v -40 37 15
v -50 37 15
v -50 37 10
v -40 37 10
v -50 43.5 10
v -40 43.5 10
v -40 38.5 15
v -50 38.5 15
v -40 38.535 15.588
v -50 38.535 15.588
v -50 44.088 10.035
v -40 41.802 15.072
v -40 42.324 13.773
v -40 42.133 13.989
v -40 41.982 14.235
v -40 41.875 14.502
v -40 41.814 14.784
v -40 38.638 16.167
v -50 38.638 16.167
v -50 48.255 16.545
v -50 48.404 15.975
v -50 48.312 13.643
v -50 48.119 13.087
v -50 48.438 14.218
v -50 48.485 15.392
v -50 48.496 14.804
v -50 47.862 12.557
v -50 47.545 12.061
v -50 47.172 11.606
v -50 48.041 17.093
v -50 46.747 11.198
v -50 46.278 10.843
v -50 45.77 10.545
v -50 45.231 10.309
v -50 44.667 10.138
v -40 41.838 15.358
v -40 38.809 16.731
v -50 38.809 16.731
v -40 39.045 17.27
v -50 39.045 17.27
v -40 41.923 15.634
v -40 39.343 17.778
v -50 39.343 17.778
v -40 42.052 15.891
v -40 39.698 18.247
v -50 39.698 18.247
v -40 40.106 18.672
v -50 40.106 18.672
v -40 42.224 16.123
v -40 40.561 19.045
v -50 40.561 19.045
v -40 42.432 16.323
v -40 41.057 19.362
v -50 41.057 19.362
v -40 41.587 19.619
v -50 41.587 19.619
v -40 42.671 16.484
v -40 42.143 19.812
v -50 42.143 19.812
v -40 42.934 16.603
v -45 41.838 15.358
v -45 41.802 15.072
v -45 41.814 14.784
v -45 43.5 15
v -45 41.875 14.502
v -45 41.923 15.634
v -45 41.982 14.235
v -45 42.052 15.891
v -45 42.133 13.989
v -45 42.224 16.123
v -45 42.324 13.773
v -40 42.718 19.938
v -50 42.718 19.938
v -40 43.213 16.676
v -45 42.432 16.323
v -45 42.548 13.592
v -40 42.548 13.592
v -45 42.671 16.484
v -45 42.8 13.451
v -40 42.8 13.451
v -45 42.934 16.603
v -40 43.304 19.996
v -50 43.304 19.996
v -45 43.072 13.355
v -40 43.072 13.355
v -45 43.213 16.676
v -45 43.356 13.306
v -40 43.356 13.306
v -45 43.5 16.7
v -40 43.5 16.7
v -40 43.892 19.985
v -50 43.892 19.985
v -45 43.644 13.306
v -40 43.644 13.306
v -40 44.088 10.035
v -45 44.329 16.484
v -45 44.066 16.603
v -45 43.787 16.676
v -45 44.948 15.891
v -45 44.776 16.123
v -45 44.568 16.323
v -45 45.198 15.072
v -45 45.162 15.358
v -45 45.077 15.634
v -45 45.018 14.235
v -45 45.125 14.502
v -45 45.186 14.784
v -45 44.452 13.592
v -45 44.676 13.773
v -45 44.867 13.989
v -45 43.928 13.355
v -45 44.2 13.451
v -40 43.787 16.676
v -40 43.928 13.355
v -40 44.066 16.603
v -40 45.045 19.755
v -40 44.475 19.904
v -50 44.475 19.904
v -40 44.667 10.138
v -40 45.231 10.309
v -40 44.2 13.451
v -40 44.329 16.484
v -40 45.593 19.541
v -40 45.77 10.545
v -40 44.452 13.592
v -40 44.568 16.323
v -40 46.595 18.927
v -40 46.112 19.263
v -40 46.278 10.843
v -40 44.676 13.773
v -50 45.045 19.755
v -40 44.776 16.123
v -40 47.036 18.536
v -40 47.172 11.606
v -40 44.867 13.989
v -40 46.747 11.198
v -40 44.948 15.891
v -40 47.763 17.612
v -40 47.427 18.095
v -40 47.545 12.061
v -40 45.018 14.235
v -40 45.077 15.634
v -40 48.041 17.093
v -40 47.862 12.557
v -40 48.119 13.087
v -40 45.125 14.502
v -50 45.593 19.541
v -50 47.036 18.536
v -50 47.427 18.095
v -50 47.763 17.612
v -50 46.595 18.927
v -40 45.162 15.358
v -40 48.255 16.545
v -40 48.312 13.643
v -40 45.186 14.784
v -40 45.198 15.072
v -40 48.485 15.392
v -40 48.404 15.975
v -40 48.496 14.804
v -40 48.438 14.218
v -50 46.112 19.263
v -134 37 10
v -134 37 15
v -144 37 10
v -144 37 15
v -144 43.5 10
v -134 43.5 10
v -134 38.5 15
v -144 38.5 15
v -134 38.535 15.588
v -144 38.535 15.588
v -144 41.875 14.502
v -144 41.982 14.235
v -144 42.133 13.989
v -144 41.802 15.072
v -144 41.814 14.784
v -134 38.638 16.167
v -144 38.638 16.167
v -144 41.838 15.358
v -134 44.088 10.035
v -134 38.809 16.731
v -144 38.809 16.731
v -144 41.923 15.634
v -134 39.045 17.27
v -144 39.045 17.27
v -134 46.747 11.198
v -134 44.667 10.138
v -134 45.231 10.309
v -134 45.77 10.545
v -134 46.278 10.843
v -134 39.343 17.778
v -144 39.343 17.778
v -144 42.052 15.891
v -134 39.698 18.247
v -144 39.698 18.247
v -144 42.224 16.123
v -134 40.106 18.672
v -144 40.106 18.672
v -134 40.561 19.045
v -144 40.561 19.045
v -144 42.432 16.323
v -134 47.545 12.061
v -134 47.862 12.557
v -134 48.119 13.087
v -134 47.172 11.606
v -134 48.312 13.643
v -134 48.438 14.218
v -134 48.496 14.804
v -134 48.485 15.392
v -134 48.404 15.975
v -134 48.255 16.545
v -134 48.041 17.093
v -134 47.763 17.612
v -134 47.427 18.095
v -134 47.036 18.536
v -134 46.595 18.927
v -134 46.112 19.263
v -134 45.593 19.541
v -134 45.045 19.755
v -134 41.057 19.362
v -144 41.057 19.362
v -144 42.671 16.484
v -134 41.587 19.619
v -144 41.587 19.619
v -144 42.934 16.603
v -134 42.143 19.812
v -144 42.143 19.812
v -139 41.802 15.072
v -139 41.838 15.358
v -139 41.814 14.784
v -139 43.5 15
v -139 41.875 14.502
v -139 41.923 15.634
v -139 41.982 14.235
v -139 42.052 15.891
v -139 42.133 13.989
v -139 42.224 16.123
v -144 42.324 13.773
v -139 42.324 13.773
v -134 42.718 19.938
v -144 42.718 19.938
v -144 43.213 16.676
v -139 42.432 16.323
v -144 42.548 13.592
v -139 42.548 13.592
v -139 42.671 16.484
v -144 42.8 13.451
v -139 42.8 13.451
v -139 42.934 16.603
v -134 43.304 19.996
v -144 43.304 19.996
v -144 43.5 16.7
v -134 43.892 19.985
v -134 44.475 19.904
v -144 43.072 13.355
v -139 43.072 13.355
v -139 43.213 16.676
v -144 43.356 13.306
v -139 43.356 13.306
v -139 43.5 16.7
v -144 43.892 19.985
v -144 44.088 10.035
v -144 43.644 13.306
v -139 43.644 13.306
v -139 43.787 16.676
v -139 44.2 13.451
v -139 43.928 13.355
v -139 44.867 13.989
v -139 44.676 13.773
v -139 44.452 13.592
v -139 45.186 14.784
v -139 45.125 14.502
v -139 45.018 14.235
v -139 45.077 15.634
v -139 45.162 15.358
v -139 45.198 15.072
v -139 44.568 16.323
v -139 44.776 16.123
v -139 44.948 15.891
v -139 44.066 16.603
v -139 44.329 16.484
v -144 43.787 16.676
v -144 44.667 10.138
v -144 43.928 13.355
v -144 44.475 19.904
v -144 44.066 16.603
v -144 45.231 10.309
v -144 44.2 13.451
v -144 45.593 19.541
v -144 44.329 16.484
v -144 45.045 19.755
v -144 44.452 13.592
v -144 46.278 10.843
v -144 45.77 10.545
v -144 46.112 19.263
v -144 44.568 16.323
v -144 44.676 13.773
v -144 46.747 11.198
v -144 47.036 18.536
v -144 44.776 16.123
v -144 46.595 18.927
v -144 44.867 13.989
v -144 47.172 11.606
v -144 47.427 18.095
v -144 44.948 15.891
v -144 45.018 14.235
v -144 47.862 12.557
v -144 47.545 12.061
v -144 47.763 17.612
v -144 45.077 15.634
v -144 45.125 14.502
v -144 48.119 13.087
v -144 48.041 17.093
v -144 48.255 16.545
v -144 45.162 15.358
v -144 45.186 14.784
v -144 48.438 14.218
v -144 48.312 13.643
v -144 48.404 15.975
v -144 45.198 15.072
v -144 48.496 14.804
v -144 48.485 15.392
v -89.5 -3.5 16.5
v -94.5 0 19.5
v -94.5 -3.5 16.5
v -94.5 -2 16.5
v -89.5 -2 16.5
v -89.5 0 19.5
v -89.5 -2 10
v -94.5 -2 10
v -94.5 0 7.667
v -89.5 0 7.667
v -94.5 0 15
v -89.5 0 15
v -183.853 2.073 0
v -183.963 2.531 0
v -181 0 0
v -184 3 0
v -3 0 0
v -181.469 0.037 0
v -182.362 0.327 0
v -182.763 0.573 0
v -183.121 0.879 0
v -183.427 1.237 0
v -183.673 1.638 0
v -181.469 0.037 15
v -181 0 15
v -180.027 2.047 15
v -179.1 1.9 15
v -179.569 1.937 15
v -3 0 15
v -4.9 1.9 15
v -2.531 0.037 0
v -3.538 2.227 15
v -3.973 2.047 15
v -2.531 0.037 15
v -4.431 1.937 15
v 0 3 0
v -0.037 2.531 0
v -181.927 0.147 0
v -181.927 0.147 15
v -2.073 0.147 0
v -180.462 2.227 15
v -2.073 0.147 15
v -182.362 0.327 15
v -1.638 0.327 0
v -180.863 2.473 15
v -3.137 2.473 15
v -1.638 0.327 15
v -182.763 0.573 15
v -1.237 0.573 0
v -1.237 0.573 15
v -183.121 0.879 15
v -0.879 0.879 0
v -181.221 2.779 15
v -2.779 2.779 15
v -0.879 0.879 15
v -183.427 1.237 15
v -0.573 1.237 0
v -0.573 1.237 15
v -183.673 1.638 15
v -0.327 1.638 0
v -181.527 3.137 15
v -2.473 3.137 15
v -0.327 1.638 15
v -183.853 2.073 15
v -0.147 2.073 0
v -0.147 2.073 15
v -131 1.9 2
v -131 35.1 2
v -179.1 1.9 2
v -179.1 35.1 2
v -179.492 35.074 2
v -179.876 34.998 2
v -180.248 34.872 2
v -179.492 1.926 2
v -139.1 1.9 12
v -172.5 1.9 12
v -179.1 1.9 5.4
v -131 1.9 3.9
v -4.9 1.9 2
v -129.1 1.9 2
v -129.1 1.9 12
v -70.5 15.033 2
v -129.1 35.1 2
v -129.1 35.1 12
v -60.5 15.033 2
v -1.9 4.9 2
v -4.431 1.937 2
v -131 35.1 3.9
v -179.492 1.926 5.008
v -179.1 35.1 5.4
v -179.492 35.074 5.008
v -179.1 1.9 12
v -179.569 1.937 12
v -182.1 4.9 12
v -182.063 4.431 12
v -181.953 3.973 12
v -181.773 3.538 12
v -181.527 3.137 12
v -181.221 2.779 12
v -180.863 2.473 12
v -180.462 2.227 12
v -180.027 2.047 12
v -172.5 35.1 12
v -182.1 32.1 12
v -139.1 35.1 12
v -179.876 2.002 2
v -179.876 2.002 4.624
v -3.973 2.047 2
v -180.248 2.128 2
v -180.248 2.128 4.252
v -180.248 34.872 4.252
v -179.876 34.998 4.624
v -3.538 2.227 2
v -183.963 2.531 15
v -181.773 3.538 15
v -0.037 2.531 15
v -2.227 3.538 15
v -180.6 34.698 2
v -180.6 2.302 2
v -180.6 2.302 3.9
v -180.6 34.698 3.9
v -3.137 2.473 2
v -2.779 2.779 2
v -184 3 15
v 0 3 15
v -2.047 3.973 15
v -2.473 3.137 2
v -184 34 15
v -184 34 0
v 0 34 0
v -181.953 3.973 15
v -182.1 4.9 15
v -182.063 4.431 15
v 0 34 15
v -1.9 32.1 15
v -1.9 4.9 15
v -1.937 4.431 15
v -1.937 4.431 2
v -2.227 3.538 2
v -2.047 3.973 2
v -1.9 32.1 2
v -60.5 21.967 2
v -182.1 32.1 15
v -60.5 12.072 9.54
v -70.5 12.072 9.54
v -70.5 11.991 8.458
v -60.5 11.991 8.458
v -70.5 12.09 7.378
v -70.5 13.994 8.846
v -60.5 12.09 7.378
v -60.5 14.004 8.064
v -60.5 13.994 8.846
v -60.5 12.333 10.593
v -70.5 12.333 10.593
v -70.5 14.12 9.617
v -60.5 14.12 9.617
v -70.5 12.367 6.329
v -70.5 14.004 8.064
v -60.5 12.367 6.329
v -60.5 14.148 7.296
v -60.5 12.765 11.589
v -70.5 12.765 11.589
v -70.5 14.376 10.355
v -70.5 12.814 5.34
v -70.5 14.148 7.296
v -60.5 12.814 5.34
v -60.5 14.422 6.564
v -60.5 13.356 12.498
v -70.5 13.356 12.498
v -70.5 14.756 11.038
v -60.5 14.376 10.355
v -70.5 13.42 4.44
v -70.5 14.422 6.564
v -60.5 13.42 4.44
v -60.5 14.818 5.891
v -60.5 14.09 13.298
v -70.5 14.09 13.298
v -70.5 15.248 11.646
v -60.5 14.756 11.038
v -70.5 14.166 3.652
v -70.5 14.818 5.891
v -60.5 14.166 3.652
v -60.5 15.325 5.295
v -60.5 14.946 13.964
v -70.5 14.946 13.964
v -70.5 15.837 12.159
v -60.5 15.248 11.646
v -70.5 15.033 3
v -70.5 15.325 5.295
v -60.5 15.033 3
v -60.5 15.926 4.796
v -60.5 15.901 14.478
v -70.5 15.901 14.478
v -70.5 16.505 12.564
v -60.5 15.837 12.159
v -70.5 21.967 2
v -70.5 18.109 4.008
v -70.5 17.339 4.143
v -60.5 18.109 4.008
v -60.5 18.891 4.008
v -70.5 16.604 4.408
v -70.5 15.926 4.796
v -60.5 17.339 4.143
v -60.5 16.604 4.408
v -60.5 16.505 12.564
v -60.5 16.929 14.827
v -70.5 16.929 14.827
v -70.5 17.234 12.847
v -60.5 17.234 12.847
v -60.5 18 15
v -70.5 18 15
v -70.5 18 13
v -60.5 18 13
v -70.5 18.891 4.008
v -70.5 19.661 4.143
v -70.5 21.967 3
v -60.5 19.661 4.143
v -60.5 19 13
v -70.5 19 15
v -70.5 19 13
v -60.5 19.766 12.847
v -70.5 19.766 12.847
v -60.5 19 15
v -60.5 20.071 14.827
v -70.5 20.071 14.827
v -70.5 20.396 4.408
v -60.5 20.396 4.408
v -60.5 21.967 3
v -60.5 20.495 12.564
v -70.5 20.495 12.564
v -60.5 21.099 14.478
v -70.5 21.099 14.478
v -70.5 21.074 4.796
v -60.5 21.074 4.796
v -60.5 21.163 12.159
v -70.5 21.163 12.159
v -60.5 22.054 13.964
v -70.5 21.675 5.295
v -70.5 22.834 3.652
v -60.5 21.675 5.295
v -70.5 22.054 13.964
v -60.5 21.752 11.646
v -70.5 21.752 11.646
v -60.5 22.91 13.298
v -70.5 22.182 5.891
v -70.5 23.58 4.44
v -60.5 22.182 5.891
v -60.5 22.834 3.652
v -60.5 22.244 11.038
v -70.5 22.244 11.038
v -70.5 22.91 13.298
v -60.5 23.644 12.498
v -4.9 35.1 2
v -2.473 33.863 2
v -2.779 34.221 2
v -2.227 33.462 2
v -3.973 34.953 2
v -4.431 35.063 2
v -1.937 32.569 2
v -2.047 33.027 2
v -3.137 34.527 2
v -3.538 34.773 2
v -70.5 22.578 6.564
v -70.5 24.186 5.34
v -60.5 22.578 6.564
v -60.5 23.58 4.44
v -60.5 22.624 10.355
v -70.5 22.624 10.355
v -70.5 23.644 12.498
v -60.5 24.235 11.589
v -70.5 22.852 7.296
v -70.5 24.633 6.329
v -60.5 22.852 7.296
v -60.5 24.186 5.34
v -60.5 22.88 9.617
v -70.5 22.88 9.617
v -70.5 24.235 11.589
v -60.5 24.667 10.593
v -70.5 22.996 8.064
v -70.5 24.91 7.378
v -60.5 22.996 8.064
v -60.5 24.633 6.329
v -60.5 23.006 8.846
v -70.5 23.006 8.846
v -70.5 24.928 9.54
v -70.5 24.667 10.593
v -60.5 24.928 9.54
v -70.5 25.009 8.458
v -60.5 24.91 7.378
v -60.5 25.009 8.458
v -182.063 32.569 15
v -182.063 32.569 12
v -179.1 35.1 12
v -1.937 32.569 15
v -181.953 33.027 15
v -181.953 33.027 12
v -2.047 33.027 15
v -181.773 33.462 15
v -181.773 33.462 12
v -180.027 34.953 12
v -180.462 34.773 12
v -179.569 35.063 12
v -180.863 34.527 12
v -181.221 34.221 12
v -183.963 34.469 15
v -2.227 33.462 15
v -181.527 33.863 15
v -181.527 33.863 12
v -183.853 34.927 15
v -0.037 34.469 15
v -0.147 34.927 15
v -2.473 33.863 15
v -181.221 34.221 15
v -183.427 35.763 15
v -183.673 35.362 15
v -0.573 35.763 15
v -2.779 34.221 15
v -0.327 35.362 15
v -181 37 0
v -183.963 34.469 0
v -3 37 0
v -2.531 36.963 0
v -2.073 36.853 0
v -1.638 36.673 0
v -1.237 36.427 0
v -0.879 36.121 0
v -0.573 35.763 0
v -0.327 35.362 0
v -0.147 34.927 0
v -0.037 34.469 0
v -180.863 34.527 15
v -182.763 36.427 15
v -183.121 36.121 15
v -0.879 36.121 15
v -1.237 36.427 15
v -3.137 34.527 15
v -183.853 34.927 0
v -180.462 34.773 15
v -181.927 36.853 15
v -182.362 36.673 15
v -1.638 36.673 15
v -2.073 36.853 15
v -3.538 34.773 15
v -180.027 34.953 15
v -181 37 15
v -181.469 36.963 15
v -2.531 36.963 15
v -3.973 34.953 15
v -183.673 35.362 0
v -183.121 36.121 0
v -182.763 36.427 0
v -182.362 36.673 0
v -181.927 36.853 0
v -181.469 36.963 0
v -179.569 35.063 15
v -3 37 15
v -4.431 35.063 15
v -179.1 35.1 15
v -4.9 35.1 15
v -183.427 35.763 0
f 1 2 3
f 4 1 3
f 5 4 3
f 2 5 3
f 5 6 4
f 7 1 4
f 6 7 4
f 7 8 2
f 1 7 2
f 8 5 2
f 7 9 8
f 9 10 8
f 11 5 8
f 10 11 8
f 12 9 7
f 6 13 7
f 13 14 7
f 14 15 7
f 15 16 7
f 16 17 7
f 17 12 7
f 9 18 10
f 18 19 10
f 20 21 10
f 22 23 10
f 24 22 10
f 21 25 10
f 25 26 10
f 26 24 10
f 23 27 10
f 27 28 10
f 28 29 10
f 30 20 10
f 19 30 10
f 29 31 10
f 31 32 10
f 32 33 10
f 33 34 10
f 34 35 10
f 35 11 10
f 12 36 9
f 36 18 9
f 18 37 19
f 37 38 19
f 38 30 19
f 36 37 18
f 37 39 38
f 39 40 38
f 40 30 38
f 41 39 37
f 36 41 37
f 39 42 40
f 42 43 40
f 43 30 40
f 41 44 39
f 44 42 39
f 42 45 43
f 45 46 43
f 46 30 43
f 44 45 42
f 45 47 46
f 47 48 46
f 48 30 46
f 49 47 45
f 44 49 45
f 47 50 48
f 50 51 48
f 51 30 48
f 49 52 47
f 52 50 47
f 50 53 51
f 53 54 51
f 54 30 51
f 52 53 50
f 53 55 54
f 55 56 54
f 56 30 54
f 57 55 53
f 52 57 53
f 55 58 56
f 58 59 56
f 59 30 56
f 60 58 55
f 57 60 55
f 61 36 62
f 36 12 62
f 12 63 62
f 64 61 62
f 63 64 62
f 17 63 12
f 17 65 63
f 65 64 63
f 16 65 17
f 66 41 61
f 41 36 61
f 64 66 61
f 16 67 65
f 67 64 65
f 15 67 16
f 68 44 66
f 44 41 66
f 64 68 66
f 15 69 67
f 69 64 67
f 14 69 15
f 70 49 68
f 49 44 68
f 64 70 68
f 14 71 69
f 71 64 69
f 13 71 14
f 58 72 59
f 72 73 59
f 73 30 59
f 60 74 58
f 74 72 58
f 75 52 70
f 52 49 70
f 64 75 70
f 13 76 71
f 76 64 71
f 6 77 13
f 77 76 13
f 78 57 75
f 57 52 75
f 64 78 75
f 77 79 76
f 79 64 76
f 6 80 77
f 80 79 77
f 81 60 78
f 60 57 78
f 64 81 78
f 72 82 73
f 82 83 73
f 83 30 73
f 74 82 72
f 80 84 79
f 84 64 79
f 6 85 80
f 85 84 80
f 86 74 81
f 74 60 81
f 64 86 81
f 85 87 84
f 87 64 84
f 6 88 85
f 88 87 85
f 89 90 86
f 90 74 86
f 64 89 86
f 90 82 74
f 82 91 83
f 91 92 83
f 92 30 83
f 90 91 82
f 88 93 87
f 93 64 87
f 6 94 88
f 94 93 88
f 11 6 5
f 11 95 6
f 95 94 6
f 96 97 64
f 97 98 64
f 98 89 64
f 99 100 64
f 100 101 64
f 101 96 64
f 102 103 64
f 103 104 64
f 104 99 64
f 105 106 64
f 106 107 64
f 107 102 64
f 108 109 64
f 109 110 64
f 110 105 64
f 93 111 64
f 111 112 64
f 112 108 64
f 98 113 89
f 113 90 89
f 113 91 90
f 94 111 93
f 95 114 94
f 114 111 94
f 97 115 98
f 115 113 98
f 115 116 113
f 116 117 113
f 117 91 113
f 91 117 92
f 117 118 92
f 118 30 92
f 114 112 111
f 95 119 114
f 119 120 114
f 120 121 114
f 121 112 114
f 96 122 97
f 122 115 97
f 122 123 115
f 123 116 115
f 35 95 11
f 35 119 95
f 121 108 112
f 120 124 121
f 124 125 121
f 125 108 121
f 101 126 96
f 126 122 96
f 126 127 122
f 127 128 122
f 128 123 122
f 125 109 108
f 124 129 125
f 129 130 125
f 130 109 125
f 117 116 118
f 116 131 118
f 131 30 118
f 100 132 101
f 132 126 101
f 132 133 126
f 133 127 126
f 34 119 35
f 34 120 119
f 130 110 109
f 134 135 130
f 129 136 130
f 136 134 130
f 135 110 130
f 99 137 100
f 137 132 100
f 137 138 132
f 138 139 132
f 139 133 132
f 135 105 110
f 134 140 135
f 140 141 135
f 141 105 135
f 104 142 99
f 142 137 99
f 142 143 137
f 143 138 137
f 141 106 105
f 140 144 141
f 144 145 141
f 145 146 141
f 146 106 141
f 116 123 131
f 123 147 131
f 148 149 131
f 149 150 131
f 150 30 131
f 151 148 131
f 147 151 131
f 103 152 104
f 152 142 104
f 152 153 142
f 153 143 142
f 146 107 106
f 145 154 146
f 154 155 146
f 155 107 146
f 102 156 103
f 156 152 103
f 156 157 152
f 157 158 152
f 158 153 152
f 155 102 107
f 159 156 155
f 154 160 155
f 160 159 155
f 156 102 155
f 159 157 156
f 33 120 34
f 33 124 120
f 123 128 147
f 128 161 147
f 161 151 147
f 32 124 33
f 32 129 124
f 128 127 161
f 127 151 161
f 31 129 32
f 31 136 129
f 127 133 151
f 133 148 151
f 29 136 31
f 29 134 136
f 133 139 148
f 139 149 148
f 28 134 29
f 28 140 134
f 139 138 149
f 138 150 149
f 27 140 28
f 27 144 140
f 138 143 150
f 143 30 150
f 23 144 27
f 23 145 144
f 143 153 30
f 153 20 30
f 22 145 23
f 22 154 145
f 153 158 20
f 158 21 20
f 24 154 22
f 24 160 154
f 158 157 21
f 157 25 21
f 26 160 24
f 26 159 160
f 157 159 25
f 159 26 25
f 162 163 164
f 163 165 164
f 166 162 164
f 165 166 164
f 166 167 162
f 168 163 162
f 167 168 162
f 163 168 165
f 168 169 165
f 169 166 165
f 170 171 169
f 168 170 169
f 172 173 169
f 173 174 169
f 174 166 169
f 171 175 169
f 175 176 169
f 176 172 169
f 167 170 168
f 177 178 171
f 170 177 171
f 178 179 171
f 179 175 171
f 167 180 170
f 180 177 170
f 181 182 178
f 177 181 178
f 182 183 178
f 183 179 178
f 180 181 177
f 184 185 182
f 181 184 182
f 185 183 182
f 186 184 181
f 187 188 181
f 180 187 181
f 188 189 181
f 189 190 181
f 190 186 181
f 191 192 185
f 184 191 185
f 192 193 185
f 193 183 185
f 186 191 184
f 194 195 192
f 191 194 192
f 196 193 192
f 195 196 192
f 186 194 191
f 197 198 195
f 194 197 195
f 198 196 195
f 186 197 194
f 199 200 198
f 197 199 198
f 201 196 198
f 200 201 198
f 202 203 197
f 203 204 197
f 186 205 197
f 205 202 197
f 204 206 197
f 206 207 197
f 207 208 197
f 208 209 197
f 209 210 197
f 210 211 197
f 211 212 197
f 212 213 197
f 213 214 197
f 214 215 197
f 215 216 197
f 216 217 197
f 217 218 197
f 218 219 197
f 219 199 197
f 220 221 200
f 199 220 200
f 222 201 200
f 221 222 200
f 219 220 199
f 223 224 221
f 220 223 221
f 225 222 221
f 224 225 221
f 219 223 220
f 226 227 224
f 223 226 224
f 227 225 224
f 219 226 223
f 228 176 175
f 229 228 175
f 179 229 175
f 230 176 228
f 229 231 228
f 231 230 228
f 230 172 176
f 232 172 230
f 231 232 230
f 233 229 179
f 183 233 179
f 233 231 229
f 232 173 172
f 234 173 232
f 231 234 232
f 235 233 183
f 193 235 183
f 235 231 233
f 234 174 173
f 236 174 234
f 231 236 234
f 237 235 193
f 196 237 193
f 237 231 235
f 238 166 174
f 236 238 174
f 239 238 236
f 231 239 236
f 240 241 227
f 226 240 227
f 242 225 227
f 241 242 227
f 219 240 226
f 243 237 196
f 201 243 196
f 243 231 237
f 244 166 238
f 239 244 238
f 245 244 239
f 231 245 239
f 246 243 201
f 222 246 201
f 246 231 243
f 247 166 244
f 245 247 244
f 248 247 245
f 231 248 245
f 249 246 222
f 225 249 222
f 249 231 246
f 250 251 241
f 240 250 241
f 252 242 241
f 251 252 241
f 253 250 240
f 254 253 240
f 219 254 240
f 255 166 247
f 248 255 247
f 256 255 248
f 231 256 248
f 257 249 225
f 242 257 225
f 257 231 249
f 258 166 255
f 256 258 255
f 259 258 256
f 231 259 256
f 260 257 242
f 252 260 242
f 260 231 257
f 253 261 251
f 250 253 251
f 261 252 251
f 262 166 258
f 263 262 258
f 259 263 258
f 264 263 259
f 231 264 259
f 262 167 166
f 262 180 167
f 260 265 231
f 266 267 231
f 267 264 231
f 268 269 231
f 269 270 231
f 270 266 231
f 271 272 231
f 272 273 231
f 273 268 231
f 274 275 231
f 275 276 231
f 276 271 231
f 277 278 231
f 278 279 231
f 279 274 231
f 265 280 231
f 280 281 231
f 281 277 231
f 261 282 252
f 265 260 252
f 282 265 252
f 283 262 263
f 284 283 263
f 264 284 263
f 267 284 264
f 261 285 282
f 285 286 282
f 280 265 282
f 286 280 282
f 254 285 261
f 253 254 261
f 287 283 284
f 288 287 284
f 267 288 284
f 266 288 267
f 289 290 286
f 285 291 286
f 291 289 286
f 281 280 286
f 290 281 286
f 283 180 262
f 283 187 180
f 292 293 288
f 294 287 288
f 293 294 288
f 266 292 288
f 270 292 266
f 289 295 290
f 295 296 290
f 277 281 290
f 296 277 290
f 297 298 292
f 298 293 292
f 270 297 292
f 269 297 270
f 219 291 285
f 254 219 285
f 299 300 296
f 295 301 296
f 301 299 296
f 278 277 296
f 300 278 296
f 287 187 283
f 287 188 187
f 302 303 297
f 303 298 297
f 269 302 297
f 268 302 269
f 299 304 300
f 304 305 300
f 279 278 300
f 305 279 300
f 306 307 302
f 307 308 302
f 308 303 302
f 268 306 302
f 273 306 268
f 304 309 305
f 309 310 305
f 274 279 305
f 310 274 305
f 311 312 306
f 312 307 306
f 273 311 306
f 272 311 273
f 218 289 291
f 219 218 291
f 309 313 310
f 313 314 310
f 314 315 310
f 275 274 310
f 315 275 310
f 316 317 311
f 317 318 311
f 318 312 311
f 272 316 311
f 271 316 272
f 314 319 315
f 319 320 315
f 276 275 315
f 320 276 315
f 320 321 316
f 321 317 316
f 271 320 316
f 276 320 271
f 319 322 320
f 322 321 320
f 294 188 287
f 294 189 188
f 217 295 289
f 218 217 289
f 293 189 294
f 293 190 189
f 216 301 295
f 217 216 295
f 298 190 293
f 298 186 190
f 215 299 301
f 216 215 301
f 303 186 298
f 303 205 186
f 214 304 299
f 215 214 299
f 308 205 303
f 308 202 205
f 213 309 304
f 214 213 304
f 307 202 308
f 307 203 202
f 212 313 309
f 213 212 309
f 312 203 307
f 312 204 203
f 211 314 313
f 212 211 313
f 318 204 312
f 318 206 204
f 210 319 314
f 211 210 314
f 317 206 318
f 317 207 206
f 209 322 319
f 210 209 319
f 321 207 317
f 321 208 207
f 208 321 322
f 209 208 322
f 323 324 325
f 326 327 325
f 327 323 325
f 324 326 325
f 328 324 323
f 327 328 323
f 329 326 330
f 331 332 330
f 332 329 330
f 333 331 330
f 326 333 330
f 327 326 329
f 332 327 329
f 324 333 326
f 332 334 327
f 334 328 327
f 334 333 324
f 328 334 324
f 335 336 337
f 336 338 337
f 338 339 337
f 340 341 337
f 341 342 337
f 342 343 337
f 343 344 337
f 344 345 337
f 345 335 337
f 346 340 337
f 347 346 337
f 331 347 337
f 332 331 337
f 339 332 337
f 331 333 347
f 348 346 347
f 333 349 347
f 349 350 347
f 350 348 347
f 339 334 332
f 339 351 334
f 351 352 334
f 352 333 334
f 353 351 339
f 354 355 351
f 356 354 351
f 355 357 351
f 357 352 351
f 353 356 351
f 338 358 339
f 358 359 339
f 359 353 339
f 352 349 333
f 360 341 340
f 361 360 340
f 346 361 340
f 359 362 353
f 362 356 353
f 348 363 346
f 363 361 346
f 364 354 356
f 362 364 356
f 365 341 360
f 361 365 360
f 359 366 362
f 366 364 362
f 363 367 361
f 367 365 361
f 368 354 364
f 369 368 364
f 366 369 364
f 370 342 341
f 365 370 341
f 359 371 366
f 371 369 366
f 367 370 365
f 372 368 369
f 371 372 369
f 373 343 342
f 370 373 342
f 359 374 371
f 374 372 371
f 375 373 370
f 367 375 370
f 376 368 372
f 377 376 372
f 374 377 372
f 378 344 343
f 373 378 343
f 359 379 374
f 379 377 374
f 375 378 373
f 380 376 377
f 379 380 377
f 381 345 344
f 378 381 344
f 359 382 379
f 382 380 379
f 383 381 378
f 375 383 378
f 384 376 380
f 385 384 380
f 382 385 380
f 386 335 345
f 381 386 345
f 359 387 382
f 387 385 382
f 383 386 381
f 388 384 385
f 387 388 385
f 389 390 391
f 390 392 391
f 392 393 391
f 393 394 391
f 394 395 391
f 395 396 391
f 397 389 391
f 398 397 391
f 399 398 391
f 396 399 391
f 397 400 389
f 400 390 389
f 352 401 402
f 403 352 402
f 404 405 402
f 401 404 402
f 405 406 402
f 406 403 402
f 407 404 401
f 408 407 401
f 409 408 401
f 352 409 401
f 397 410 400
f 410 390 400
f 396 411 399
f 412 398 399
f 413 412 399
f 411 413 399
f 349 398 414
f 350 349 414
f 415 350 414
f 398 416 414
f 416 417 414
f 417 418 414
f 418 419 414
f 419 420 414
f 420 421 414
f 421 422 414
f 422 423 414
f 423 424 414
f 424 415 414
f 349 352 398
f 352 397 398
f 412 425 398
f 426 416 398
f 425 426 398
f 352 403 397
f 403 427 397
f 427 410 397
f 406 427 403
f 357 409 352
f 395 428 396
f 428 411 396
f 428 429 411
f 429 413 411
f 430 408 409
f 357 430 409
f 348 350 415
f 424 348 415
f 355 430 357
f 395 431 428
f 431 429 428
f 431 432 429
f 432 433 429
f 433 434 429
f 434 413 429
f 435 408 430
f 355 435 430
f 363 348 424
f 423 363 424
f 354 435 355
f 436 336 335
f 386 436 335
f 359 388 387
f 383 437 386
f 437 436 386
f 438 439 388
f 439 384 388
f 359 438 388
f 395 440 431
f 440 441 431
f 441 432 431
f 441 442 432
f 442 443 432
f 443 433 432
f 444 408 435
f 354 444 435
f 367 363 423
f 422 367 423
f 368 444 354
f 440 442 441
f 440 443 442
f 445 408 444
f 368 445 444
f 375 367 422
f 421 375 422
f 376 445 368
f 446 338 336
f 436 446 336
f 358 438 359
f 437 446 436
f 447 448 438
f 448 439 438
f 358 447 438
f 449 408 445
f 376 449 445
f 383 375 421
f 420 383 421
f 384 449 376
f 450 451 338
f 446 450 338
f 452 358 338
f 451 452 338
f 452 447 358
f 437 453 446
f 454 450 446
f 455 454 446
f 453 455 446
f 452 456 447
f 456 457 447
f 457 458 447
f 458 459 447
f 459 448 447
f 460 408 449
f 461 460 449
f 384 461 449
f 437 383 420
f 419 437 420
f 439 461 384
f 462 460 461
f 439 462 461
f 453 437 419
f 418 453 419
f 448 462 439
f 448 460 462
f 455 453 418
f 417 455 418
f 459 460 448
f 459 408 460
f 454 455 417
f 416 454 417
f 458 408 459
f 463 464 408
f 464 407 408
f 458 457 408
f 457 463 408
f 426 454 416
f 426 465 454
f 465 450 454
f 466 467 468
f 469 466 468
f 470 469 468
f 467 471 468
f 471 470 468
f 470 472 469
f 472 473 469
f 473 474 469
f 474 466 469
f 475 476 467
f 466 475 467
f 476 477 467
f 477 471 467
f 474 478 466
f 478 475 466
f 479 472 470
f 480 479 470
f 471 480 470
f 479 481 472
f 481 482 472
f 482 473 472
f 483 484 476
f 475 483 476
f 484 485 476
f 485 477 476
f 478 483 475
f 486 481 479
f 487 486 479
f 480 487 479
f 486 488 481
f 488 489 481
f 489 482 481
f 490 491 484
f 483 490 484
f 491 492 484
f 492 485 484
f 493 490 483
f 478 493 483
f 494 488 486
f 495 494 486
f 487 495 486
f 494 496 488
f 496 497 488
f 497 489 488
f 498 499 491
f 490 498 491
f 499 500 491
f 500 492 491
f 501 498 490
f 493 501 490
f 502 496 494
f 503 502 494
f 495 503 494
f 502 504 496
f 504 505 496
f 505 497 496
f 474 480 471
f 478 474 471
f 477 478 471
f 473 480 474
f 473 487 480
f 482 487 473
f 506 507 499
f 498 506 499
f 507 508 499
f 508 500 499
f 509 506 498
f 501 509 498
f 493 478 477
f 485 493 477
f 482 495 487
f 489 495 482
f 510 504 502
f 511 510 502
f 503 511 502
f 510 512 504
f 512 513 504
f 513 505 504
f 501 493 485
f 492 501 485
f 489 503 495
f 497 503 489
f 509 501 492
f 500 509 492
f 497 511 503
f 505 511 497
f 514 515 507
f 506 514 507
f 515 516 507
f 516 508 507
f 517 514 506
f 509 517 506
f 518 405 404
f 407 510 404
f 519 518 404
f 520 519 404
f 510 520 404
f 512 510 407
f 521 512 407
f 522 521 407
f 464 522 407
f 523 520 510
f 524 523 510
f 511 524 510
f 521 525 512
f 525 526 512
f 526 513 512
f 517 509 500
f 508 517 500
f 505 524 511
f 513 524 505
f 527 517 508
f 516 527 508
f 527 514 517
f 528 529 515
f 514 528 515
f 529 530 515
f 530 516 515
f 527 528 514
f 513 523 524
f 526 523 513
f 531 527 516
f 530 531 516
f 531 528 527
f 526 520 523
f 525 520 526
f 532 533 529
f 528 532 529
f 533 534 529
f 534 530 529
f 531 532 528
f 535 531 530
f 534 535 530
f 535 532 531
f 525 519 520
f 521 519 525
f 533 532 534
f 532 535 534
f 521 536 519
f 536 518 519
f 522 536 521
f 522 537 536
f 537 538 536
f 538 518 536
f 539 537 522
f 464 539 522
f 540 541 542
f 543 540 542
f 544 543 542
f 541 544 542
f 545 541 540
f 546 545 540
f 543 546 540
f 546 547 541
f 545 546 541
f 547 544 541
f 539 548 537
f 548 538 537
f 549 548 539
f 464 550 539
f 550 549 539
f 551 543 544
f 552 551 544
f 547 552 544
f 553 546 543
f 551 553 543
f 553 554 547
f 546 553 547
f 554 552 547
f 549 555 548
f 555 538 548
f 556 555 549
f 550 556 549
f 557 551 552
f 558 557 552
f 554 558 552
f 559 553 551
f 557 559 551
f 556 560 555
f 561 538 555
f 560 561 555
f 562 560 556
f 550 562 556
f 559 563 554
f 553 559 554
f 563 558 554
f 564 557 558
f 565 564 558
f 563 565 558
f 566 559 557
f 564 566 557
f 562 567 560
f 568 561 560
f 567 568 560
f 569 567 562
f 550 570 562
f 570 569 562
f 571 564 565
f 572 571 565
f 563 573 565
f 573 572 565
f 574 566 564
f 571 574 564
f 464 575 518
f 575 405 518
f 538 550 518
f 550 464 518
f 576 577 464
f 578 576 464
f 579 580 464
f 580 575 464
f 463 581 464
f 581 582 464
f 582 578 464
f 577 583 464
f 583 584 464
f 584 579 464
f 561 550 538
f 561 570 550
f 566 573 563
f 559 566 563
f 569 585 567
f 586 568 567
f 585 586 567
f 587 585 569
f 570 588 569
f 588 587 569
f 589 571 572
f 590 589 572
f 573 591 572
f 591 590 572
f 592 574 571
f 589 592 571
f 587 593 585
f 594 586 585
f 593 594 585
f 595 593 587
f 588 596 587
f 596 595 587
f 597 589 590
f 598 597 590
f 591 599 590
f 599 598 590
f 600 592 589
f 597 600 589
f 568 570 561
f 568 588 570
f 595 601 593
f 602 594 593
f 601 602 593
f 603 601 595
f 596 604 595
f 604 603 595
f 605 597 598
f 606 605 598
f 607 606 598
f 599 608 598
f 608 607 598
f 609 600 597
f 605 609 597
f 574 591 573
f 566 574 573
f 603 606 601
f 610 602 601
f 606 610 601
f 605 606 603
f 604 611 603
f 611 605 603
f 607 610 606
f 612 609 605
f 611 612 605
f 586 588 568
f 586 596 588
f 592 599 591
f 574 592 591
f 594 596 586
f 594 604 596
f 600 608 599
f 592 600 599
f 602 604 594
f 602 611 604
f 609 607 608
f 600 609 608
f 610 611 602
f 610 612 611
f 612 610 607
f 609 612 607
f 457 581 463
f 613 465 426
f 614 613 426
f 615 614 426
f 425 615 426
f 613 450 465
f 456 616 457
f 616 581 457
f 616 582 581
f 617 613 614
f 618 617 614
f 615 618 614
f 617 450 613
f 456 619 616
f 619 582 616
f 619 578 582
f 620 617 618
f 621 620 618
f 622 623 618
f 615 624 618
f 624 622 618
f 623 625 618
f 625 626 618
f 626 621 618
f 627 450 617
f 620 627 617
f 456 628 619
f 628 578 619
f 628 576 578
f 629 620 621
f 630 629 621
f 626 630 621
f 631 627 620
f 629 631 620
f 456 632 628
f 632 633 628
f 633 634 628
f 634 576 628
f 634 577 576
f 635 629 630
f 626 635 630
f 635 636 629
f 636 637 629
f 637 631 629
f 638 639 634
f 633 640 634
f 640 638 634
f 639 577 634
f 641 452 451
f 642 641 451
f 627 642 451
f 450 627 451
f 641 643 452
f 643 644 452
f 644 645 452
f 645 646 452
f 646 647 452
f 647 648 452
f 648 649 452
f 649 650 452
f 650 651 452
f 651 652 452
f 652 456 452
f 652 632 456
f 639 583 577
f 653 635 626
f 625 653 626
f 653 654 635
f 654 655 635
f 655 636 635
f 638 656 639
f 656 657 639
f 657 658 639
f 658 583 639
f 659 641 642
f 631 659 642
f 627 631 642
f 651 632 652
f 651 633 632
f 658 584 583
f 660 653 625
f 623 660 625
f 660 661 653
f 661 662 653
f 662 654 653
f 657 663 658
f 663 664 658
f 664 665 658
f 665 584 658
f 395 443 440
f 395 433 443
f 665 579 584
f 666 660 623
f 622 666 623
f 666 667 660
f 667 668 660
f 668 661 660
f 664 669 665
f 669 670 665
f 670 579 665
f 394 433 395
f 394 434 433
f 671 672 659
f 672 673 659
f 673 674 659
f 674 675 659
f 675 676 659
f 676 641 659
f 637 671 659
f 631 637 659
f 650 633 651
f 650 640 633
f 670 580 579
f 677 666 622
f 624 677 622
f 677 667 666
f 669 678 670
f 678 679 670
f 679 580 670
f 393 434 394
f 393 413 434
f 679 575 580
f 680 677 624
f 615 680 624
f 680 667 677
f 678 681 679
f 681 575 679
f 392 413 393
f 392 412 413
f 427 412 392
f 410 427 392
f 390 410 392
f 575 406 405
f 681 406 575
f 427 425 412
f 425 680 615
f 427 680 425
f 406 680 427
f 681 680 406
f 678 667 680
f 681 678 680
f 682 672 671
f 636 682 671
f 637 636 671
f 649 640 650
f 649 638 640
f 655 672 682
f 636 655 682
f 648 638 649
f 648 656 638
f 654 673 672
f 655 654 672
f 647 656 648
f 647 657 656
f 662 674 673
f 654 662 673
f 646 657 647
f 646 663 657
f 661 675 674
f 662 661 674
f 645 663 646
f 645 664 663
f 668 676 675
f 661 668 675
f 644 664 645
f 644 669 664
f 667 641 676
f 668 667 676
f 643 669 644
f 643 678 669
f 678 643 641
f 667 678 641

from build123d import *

# Parameters (mm, degrees)
CROQUIS1_W                   = 184
CROQUIS1_H                   = 37
SALIENTE_EXTRUIR1_DEPTH      = 15
CROQUIS3_W                   = 180.2
CROQUIS3_H                   = 33.2
CORTAR_EXTRUIR2_DEPTH        = 13
SALIENTE_EXTRUIR2_START      = -40
SALIENTE_EXTRUIR2_DEPTH      = 10
CROQUIS5_R                   = 1.7
CORTAR_EXTRUIR3_DEPTH        = 5
REDONDEO1_R                  = 3
SALIENTE_EXTRUIR3_START      = -92
SALIENTE_EXTRUIR3_DEPTH      = 2.5
SALIENTE_EXTRUIR3_DEPTH_BACK = 2.5
SALIENTE_EXTRUIR4_START      = 63.6
SALIENTE_EXTRUIR4_DEPTH      = 5
SALIENTE_EXTRUIR4_DEPTH_BACK = 5
SALIENTE_EXTRUIR5_DEPTH      = 33.2


with BuildPart() as part:
    # Croquis1 → Saliente-Extruir1 (new body)
    with BuildSketch(Plane.XY):
        with Locations((-92, 18.5)):
            Rectangle(CROQUIS1_W, CROQUIS1_H)
    extrude(amount=SALIENTE_EXTRUIR1_DEPTH)

    # Croquis3 → Cortar-Extruir2 (cut)
    with BuildSketch(Plane.XY.offset(15)):
        with Locations((-92, 18.5)):
            Rectangle(CROQUIS3_W, CROQUIS3_H)
    extrude(amount=-CORTAR_EXTRUIR2_DEPTH, mode=Mode.SUBTRACT)

    # Redondeo1
    redondeo1_edges = [part.edges().sort_by_distance(p)[0] for p in [
        (-1.9, 1.9, 8.5),
        (-182.1, 1.9, 8.5),
        (-182.1, 35.1, 8.5),
        (-1.9, 35.1, 8.5),
        (0, 0, 7.5),
        (-184, 0, 7.5),
        (-184, 37, 7.5),
        (0, 37, 7.5),
    ]]
    fillet(redondeo1_edges, radius=REDONDEO1_R)

    # Croquis6 → Saliente-Extruir3 (add, two sides)
    with BuildSketch(Plane.ZY.offset(184).offset(SALIENTE_EXTRUIR3_START)) as saliente_extruir3_sk:
        Polygon((15, 0), (19.5, 0), (16.5, -3.5), (16.5, -2), (10, -2), (7.666666667, 0), align=None)
    extrude(amount=SALIENTE_EXTRUIR3_DEPTH)
    extrude(saliente_extruir3_sk.sketch, amount=-SALIENTE_EXTRUIR3_DEPTH_BACK)

    # Croquis7 → Saliente-Extruir4 (add, two sides)
    with BuildSketch(Plane.ZY.offset(1.9).offset(SALIENTE_EXTRUIR4_START)) as saliente_extruir4_sk:
        with BuildLine():
            Line((3, 21.966876226), (2, 21.966876226))
            Line((2, 21.966876226), (2, 18.5))
            Line((2, 18.5), (2, 15.033123774))
            Line((2, 15.033123774), (3, 15.033123774))
            ThreePointArc((3, 15.033123774), (10.072006407, 12.180662475), (15, 18))
            Line((15, 18), (13, 18))
            ThreePointArc((13, 18), (3.991479265, 18.5), (13, 19))
            Line((13, 19), (15, 19))
            ThreePointArc((15, 19), (10.072006407, 24.819337525), (3, 21.966876226))
        make_face()
    extrude(amount=SALIENTE_EXTRUIR4_DEPTH)
    extrude(saliente_extruir4_sk.sketch, amount=-SALIENTE_EXTRUIR4_DEPTH_BACK)

    # Croquis8 → Saliente-Extruir5 (add)
    with BuildSketch(Plane.XZ.offset(-35.1)):
        Polygon((-129.1, 2), (-129.1, 12), (-139.1, 12), (-131, 3.9), (-131, 2), align=None)
        Polygon((-182.5, 12), (-172.5, 12), (-180.6, 3.9), (-180.6, 2), (-182.5, 2), align=None)
    extrude(amount=SALIENTE_EXTRUIR5_DEPTH)


with BuildPart() as body_2:
    # Croquis4 → Saliente-Extruir2 (new body)
    with BuildSketch(Plane.ZY.offset(184).offset(SALIENTE_EXTRUIR2_START)):
        with BuildLine():
            Line((15, 38.5), (15, 37))
            Line((15, 37), (10, 37))
            Line((10, 37), (10, 43.5))
            ThreePointArc((10, 43.5), (18.535533906, 47.035533906), (15, 38.5))
        make_face()
    extrude(amount=-SALIENTE_EXTRUIR2_DEPTH)

    # Croquis5 → Cortar-Extruir3 (cut)
    with BuildSketch(Plane.ZY.offset(144)):
        with Locations((15, 43.5)):
            Circle(CROQUIS5_R)
    extrude(amount=-CORTAR_EXTRUIR3_DEPTH, mode=Mode.SUBTRACT)


with BuildPart() as body_3:
    # Simetría1: mirrored copy
    add(body_2.part.mirror(Plane.ZY.offset(92)))


solid = Compound([part.part, body_2.part, body_3.part])
